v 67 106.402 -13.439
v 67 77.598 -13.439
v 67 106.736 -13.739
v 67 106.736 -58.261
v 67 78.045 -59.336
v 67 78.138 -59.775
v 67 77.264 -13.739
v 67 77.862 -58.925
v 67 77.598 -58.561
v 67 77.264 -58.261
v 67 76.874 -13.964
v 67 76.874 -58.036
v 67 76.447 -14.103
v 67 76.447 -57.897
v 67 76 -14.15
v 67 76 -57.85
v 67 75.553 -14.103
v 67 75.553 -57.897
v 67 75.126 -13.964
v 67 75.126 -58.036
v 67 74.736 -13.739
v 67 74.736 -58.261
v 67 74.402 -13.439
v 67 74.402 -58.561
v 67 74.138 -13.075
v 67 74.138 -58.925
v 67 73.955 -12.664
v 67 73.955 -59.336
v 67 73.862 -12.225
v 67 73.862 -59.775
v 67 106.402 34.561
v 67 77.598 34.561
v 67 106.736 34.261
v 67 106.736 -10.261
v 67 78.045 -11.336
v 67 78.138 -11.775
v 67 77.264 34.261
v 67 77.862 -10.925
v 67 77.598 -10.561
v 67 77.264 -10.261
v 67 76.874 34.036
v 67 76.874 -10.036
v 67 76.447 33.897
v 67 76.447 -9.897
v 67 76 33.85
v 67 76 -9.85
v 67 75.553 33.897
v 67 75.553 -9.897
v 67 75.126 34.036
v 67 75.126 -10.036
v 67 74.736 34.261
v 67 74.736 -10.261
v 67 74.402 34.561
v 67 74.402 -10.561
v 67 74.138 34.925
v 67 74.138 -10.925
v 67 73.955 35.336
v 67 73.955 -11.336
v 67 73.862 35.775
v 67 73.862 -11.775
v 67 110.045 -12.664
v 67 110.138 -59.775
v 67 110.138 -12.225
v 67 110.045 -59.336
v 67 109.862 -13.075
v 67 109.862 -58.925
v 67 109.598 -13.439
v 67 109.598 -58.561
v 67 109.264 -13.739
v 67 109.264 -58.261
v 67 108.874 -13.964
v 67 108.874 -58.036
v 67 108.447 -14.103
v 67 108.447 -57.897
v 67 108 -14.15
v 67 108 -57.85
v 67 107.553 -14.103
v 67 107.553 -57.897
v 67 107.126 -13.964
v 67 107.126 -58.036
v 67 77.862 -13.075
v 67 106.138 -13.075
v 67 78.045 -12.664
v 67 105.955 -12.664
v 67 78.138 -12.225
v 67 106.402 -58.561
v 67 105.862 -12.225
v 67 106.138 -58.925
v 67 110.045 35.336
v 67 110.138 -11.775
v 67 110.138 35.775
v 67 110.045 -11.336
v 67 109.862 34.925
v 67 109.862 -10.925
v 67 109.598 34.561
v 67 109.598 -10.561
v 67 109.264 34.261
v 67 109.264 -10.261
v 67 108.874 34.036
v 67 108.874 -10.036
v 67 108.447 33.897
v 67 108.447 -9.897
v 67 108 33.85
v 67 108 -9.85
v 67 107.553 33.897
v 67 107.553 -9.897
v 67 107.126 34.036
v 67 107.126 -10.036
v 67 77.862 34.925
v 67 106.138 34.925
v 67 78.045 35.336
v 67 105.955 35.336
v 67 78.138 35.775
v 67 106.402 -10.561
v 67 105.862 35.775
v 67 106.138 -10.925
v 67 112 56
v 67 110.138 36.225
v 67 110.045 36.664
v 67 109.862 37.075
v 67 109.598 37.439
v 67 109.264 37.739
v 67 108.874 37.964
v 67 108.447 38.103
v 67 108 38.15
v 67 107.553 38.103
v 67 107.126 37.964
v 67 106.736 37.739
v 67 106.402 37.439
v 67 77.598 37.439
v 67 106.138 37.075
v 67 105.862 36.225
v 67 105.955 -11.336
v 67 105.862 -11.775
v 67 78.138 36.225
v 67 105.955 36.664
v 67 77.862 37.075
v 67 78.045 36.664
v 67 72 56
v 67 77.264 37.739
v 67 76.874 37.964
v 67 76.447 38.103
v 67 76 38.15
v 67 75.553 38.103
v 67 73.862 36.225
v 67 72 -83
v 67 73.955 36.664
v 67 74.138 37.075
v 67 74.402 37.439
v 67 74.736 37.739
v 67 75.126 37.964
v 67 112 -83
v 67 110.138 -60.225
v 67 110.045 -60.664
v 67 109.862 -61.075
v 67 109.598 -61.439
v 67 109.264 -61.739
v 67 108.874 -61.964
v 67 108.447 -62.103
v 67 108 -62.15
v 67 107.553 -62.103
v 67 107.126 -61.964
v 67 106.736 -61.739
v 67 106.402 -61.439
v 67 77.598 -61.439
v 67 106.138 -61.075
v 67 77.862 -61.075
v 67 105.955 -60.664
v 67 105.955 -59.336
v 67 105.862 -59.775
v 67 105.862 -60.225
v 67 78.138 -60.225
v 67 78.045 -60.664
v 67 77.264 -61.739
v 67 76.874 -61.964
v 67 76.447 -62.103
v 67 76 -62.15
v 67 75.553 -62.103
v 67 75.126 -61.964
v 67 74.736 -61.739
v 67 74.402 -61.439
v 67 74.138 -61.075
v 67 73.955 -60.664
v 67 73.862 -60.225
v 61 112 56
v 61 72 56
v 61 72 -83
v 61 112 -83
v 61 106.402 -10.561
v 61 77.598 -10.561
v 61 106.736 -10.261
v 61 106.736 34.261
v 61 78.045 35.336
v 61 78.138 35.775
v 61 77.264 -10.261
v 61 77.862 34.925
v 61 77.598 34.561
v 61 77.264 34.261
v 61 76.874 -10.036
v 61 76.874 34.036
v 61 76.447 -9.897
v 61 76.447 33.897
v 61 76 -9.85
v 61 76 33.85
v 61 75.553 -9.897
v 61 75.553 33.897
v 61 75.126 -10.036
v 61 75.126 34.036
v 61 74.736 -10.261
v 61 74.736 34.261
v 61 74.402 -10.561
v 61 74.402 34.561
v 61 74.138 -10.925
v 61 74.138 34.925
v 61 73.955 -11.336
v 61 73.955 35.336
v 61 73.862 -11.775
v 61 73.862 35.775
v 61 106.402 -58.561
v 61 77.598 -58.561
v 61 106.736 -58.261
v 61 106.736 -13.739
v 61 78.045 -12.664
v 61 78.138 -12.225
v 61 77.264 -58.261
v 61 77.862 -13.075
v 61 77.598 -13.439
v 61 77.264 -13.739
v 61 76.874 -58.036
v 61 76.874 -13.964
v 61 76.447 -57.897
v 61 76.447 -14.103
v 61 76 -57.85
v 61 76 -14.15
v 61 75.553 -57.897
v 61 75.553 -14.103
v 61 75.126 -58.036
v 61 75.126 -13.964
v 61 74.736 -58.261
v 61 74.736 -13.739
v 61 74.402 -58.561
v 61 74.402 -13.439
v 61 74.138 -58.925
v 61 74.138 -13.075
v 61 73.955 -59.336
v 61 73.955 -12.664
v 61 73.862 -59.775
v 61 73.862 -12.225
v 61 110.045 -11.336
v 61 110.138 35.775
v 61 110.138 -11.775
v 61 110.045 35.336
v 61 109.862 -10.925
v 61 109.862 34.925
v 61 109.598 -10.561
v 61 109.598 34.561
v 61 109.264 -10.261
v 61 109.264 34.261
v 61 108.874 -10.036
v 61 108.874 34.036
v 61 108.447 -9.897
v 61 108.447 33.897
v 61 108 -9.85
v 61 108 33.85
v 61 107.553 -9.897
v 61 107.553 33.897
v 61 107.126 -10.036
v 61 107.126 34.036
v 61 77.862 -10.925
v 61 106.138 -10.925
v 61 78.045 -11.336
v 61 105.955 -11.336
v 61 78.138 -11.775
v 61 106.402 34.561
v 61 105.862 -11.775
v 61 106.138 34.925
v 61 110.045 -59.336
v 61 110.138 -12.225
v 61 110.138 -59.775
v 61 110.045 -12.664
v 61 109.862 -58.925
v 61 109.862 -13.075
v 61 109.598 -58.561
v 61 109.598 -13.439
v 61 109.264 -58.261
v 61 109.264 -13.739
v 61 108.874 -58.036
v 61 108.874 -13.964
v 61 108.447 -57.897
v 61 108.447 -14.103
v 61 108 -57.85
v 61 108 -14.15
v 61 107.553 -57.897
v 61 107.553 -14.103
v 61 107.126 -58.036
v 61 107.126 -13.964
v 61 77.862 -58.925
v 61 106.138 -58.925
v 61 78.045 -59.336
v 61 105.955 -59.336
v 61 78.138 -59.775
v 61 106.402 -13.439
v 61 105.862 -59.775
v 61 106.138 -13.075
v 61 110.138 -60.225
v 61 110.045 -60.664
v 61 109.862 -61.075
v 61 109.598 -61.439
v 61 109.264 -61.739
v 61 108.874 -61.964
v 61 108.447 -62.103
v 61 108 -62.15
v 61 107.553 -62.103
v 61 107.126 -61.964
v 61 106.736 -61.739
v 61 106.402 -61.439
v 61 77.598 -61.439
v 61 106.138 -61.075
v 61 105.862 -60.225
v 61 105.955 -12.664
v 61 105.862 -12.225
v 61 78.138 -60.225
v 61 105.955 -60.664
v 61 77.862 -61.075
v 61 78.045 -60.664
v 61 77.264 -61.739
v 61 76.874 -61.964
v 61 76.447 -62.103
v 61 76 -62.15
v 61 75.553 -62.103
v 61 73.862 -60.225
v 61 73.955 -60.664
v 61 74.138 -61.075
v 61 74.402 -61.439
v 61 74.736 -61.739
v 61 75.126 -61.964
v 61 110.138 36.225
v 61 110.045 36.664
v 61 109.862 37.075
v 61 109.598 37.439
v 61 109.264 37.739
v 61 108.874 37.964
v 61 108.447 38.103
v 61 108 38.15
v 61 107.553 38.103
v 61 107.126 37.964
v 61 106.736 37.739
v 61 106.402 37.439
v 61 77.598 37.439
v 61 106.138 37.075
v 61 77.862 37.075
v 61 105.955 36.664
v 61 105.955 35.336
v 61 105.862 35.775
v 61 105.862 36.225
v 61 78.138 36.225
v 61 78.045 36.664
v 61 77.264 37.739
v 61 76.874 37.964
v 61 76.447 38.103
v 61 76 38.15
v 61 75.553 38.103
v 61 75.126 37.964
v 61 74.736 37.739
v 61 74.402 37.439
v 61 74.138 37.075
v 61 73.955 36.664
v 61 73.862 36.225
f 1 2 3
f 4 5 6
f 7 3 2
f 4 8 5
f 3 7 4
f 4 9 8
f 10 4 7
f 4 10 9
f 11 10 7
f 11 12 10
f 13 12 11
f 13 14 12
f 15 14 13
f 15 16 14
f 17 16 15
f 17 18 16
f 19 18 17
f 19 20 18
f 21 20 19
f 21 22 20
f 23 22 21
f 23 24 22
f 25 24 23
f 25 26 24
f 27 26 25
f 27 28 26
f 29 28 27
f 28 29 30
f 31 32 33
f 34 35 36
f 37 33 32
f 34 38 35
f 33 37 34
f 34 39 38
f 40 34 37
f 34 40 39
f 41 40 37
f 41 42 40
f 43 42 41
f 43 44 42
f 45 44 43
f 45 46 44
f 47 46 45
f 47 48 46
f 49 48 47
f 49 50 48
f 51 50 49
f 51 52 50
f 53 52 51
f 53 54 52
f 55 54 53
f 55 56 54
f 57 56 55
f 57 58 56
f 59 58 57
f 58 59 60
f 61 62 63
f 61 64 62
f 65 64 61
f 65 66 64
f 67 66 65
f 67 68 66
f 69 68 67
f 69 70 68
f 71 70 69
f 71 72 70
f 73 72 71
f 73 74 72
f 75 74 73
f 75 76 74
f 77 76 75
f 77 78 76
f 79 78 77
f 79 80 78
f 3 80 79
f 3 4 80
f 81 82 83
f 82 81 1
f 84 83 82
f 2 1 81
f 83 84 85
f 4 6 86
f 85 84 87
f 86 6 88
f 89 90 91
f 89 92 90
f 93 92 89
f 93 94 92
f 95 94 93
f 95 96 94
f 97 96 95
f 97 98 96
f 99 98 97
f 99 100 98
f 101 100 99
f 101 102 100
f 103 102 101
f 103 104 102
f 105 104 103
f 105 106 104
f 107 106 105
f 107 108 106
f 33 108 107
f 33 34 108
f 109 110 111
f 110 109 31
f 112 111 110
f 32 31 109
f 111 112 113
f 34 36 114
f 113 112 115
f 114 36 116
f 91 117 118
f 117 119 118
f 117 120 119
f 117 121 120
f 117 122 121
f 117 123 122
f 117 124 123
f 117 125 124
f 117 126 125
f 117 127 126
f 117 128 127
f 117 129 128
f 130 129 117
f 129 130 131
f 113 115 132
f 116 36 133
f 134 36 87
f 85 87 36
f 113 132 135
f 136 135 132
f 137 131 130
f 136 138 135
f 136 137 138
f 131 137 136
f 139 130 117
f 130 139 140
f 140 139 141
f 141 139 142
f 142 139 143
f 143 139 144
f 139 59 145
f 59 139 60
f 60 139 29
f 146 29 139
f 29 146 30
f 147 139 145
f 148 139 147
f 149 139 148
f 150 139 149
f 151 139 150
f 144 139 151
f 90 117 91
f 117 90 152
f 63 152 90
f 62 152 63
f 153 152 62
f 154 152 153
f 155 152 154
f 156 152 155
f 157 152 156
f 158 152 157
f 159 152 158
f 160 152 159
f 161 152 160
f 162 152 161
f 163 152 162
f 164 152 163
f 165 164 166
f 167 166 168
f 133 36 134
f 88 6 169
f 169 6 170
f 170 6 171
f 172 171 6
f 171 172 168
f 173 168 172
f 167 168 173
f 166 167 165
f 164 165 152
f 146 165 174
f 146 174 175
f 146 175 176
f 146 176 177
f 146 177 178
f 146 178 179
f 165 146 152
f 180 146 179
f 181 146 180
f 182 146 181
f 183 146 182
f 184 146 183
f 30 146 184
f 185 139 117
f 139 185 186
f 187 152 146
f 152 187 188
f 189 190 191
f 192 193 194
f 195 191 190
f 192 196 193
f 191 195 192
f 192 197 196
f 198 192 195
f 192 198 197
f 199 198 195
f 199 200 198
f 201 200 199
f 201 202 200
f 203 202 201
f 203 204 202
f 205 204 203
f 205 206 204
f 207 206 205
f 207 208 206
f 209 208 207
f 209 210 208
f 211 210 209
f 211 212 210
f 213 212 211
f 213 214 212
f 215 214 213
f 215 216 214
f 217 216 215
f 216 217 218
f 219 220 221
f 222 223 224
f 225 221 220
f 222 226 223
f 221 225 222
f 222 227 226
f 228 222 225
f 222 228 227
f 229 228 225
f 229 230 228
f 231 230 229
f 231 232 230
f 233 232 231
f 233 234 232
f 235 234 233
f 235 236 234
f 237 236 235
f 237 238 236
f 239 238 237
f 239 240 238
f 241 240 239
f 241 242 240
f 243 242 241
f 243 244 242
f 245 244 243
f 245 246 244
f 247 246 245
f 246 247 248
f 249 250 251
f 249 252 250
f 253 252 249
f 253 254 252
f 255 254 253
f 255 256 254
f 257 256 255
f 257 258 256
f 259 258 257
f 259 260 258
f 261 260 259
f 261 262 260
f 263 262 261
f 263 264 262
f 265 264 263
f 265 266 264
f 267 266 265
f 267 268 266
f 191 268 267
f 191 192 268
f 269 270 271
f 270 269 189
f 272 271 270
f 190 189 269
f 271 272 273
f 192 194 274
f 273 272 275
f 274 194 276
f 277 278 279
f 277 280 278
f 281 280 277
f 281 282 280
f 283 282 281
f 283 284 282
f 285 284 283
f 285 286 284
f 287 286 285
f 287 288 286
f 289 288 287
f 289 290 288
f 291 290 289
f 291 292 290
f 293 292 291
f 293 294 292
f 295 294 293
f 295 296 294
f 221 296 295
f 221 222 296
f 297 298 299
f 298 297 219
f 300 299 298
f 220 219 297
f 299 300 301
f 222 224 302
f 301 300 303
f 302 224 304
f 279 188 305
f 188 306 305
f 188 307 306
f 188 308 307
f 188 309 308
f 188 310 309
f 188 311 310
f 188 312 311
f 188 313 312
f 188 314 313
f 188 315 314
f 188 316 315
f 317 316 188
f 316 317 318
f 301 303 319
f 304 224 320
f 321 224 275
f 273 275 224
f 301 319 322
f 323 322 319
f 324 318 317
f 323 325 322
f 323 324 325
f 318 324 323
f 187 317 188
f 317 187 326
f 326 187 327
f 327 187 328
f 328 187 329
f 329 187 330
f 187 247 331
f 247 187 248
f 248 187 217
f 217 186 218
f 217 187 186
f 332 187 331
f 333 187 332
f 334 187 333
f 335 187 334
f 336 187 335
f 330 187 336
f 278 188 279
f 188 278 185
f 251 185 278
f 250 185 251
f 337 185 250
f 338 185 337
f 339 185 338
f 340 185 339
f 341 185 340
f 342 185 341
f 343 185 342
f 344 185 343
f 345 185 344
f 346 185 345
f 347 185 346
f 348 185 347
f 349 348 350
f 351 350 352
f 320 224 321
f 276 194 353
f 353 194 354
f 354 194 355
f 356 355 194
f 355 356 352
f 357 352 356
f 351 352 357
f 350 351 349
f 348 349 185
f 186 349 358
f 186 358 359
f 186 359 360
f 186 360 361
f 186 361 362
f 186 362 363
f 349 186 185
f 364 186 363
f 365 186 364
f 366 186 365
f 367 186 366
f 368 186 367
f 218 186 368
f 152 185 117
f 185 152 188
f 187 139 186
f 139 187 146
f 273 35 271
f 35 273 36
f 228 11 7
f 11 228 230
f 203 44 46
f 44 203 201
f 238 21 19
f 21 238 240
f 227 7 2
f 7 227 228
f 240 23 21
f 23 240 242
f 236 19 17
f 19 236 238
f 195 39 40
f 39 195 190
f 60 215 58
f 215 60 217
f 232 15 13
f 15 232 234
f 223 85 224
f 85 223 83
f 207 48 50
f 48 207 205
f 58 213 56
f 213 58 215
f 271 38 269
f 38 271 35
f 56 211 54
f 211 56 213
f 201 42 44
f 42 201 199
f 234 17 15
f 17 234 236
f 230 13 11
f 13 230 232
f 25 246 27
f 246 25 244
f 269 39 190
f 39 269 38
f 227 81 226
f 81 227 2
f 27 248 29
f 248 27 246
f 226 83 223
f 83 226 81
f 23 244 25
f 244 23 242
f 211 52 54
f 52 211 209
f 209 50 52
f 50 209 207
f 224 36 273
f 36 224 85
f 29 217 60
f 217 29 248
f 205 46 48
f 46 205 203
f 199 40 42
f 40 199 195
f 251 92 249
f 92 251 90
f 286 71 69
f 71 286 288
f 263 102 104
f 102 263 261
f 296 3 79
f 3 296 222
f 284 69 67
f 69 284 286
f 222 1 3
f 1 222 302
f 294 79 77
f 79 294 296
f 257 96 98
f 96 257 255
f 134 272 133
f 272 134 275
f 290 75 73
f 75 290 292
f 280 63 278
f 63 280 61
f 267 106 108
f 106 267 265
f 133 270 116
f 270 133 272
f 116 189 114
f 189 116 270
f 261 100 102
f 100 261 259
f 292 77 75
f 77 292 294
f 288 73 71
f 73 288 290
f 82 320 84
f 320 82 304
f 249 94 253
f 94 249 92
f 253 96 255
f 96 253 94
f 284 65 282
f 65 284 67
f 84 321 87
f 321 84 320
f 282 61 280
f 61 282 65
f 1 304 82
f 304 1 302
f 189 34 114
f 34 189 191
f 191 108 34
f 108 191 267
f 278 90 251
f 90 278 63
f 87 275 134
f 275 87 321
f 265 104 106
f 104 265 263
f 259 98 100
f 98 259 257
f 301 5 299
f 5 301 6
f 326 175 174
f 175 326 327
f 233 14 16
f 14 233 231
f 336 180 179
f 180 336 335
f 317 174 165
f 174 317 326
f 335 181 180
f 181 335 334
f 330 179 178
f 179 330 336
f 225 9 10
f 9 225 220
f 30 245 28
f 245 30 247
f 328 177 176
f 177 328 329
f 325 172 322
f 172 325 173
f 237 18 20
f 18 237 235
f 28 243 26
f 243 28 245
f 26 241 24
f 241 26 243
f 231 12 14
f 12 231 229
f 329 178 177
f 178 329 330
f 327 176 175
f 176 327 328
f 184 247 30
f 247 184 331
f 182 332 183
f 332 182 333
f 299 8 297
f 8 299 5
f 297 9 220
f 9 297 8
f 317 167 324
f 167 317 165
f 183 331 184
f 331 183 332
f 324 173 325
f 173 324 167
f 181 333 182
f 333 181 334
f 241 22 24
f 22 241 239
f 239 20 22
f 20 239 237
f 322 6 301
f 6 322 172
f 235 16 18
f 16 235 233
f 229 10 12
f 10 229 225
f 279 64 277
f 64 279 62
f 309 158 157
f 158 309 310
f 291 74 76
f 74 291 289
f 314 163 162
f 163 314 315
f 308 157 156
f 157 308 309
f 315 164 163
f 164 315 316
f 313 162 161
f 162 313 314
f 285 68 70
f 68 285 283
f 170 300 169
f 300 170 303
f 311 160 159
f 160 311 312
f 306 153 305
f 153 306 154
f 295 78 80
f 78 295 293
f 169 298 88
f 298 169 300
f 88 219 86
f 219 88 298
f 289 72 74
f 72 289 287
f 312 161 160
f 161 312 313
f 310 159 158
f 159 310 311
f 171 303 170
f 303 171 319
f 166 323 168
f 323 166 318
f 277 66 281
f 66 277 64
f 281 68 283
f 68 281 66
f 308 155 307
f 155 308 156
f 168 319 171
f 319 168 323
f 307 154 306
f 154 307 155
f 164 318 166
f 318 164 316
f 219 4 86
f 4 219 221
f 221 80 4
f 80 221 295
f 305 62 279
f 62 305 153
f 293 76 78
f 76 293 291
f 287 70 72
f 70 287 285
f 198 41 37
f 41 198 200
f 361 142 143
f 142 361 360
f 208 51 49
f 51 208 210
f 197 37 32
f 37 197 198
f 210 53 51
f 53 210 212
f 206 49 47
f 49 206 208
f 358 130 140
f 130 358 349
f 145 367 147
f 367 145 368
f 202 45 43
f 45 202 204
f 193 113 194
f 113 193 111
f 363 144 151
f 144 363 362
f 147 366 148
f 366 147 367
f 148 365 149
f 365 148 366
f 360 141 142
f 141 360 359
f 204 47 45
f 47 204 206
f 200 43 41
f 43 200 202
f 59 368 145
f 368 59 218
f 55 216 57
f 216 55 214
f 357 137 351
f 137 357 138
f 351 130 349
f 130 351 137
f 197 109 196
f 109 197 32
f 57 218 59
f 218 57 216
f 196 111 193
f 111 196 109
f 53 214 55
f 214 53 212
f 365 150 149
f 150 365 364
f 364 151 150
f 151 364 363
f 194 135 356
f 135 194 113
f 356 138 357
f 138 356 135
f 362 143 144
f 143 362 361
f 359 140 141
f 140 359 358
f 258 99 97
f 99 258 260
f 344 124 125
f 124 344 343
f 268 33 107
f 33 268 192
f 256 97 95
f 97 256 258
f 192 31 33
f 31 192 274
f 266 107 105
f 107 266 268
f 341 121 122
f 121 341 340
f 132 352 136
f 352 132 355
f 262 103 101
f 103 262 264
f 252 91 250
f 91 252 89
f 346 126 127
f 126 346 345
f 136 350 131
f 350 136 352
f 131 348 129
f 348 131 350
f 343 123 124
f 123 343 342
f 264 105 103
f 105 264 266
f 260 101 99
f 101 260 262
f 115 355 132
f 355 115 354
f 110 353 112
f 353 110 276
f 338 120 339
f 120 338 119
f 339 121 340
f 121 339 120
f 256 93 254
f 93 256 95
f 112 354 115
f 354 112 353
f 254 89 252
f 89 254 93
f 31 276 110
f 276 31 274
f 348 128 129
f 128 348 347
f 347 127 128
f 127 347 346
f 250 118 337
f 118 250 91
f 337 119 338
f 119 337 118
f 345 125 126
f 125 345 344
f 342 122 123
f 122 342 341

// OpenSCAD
difference() {
union () {
    // front plate
    translate([61,72,-83])
    cube([6,40,139]);
}
    translate([-4,76,-12])
    rotate([0,90,0])
    cylinder(r=2.15,90, $fn=30);

    translate([-4,108,-12])
    rotate([0,90,0])
    cylinder(r=2.15,90, $fn=30);

    translate([-4,76,-60])
    rotate([0,90,0])
    cylinder(r=2.15,90, $fn=30);

    translate([-4,108,-60])
    rotate([0,90,0])
    cylinder(r=2.15,90, $fn=30);

    // top holes left and right
    translate([-4,76,36])
    rotate([0,90,0])
    cylinder(r=2.15,100, $fn=30);

    translate([-4,108,36])
    rotate([0,90,0])
    cylinder(r=2.15,100, $fn=30);
}
